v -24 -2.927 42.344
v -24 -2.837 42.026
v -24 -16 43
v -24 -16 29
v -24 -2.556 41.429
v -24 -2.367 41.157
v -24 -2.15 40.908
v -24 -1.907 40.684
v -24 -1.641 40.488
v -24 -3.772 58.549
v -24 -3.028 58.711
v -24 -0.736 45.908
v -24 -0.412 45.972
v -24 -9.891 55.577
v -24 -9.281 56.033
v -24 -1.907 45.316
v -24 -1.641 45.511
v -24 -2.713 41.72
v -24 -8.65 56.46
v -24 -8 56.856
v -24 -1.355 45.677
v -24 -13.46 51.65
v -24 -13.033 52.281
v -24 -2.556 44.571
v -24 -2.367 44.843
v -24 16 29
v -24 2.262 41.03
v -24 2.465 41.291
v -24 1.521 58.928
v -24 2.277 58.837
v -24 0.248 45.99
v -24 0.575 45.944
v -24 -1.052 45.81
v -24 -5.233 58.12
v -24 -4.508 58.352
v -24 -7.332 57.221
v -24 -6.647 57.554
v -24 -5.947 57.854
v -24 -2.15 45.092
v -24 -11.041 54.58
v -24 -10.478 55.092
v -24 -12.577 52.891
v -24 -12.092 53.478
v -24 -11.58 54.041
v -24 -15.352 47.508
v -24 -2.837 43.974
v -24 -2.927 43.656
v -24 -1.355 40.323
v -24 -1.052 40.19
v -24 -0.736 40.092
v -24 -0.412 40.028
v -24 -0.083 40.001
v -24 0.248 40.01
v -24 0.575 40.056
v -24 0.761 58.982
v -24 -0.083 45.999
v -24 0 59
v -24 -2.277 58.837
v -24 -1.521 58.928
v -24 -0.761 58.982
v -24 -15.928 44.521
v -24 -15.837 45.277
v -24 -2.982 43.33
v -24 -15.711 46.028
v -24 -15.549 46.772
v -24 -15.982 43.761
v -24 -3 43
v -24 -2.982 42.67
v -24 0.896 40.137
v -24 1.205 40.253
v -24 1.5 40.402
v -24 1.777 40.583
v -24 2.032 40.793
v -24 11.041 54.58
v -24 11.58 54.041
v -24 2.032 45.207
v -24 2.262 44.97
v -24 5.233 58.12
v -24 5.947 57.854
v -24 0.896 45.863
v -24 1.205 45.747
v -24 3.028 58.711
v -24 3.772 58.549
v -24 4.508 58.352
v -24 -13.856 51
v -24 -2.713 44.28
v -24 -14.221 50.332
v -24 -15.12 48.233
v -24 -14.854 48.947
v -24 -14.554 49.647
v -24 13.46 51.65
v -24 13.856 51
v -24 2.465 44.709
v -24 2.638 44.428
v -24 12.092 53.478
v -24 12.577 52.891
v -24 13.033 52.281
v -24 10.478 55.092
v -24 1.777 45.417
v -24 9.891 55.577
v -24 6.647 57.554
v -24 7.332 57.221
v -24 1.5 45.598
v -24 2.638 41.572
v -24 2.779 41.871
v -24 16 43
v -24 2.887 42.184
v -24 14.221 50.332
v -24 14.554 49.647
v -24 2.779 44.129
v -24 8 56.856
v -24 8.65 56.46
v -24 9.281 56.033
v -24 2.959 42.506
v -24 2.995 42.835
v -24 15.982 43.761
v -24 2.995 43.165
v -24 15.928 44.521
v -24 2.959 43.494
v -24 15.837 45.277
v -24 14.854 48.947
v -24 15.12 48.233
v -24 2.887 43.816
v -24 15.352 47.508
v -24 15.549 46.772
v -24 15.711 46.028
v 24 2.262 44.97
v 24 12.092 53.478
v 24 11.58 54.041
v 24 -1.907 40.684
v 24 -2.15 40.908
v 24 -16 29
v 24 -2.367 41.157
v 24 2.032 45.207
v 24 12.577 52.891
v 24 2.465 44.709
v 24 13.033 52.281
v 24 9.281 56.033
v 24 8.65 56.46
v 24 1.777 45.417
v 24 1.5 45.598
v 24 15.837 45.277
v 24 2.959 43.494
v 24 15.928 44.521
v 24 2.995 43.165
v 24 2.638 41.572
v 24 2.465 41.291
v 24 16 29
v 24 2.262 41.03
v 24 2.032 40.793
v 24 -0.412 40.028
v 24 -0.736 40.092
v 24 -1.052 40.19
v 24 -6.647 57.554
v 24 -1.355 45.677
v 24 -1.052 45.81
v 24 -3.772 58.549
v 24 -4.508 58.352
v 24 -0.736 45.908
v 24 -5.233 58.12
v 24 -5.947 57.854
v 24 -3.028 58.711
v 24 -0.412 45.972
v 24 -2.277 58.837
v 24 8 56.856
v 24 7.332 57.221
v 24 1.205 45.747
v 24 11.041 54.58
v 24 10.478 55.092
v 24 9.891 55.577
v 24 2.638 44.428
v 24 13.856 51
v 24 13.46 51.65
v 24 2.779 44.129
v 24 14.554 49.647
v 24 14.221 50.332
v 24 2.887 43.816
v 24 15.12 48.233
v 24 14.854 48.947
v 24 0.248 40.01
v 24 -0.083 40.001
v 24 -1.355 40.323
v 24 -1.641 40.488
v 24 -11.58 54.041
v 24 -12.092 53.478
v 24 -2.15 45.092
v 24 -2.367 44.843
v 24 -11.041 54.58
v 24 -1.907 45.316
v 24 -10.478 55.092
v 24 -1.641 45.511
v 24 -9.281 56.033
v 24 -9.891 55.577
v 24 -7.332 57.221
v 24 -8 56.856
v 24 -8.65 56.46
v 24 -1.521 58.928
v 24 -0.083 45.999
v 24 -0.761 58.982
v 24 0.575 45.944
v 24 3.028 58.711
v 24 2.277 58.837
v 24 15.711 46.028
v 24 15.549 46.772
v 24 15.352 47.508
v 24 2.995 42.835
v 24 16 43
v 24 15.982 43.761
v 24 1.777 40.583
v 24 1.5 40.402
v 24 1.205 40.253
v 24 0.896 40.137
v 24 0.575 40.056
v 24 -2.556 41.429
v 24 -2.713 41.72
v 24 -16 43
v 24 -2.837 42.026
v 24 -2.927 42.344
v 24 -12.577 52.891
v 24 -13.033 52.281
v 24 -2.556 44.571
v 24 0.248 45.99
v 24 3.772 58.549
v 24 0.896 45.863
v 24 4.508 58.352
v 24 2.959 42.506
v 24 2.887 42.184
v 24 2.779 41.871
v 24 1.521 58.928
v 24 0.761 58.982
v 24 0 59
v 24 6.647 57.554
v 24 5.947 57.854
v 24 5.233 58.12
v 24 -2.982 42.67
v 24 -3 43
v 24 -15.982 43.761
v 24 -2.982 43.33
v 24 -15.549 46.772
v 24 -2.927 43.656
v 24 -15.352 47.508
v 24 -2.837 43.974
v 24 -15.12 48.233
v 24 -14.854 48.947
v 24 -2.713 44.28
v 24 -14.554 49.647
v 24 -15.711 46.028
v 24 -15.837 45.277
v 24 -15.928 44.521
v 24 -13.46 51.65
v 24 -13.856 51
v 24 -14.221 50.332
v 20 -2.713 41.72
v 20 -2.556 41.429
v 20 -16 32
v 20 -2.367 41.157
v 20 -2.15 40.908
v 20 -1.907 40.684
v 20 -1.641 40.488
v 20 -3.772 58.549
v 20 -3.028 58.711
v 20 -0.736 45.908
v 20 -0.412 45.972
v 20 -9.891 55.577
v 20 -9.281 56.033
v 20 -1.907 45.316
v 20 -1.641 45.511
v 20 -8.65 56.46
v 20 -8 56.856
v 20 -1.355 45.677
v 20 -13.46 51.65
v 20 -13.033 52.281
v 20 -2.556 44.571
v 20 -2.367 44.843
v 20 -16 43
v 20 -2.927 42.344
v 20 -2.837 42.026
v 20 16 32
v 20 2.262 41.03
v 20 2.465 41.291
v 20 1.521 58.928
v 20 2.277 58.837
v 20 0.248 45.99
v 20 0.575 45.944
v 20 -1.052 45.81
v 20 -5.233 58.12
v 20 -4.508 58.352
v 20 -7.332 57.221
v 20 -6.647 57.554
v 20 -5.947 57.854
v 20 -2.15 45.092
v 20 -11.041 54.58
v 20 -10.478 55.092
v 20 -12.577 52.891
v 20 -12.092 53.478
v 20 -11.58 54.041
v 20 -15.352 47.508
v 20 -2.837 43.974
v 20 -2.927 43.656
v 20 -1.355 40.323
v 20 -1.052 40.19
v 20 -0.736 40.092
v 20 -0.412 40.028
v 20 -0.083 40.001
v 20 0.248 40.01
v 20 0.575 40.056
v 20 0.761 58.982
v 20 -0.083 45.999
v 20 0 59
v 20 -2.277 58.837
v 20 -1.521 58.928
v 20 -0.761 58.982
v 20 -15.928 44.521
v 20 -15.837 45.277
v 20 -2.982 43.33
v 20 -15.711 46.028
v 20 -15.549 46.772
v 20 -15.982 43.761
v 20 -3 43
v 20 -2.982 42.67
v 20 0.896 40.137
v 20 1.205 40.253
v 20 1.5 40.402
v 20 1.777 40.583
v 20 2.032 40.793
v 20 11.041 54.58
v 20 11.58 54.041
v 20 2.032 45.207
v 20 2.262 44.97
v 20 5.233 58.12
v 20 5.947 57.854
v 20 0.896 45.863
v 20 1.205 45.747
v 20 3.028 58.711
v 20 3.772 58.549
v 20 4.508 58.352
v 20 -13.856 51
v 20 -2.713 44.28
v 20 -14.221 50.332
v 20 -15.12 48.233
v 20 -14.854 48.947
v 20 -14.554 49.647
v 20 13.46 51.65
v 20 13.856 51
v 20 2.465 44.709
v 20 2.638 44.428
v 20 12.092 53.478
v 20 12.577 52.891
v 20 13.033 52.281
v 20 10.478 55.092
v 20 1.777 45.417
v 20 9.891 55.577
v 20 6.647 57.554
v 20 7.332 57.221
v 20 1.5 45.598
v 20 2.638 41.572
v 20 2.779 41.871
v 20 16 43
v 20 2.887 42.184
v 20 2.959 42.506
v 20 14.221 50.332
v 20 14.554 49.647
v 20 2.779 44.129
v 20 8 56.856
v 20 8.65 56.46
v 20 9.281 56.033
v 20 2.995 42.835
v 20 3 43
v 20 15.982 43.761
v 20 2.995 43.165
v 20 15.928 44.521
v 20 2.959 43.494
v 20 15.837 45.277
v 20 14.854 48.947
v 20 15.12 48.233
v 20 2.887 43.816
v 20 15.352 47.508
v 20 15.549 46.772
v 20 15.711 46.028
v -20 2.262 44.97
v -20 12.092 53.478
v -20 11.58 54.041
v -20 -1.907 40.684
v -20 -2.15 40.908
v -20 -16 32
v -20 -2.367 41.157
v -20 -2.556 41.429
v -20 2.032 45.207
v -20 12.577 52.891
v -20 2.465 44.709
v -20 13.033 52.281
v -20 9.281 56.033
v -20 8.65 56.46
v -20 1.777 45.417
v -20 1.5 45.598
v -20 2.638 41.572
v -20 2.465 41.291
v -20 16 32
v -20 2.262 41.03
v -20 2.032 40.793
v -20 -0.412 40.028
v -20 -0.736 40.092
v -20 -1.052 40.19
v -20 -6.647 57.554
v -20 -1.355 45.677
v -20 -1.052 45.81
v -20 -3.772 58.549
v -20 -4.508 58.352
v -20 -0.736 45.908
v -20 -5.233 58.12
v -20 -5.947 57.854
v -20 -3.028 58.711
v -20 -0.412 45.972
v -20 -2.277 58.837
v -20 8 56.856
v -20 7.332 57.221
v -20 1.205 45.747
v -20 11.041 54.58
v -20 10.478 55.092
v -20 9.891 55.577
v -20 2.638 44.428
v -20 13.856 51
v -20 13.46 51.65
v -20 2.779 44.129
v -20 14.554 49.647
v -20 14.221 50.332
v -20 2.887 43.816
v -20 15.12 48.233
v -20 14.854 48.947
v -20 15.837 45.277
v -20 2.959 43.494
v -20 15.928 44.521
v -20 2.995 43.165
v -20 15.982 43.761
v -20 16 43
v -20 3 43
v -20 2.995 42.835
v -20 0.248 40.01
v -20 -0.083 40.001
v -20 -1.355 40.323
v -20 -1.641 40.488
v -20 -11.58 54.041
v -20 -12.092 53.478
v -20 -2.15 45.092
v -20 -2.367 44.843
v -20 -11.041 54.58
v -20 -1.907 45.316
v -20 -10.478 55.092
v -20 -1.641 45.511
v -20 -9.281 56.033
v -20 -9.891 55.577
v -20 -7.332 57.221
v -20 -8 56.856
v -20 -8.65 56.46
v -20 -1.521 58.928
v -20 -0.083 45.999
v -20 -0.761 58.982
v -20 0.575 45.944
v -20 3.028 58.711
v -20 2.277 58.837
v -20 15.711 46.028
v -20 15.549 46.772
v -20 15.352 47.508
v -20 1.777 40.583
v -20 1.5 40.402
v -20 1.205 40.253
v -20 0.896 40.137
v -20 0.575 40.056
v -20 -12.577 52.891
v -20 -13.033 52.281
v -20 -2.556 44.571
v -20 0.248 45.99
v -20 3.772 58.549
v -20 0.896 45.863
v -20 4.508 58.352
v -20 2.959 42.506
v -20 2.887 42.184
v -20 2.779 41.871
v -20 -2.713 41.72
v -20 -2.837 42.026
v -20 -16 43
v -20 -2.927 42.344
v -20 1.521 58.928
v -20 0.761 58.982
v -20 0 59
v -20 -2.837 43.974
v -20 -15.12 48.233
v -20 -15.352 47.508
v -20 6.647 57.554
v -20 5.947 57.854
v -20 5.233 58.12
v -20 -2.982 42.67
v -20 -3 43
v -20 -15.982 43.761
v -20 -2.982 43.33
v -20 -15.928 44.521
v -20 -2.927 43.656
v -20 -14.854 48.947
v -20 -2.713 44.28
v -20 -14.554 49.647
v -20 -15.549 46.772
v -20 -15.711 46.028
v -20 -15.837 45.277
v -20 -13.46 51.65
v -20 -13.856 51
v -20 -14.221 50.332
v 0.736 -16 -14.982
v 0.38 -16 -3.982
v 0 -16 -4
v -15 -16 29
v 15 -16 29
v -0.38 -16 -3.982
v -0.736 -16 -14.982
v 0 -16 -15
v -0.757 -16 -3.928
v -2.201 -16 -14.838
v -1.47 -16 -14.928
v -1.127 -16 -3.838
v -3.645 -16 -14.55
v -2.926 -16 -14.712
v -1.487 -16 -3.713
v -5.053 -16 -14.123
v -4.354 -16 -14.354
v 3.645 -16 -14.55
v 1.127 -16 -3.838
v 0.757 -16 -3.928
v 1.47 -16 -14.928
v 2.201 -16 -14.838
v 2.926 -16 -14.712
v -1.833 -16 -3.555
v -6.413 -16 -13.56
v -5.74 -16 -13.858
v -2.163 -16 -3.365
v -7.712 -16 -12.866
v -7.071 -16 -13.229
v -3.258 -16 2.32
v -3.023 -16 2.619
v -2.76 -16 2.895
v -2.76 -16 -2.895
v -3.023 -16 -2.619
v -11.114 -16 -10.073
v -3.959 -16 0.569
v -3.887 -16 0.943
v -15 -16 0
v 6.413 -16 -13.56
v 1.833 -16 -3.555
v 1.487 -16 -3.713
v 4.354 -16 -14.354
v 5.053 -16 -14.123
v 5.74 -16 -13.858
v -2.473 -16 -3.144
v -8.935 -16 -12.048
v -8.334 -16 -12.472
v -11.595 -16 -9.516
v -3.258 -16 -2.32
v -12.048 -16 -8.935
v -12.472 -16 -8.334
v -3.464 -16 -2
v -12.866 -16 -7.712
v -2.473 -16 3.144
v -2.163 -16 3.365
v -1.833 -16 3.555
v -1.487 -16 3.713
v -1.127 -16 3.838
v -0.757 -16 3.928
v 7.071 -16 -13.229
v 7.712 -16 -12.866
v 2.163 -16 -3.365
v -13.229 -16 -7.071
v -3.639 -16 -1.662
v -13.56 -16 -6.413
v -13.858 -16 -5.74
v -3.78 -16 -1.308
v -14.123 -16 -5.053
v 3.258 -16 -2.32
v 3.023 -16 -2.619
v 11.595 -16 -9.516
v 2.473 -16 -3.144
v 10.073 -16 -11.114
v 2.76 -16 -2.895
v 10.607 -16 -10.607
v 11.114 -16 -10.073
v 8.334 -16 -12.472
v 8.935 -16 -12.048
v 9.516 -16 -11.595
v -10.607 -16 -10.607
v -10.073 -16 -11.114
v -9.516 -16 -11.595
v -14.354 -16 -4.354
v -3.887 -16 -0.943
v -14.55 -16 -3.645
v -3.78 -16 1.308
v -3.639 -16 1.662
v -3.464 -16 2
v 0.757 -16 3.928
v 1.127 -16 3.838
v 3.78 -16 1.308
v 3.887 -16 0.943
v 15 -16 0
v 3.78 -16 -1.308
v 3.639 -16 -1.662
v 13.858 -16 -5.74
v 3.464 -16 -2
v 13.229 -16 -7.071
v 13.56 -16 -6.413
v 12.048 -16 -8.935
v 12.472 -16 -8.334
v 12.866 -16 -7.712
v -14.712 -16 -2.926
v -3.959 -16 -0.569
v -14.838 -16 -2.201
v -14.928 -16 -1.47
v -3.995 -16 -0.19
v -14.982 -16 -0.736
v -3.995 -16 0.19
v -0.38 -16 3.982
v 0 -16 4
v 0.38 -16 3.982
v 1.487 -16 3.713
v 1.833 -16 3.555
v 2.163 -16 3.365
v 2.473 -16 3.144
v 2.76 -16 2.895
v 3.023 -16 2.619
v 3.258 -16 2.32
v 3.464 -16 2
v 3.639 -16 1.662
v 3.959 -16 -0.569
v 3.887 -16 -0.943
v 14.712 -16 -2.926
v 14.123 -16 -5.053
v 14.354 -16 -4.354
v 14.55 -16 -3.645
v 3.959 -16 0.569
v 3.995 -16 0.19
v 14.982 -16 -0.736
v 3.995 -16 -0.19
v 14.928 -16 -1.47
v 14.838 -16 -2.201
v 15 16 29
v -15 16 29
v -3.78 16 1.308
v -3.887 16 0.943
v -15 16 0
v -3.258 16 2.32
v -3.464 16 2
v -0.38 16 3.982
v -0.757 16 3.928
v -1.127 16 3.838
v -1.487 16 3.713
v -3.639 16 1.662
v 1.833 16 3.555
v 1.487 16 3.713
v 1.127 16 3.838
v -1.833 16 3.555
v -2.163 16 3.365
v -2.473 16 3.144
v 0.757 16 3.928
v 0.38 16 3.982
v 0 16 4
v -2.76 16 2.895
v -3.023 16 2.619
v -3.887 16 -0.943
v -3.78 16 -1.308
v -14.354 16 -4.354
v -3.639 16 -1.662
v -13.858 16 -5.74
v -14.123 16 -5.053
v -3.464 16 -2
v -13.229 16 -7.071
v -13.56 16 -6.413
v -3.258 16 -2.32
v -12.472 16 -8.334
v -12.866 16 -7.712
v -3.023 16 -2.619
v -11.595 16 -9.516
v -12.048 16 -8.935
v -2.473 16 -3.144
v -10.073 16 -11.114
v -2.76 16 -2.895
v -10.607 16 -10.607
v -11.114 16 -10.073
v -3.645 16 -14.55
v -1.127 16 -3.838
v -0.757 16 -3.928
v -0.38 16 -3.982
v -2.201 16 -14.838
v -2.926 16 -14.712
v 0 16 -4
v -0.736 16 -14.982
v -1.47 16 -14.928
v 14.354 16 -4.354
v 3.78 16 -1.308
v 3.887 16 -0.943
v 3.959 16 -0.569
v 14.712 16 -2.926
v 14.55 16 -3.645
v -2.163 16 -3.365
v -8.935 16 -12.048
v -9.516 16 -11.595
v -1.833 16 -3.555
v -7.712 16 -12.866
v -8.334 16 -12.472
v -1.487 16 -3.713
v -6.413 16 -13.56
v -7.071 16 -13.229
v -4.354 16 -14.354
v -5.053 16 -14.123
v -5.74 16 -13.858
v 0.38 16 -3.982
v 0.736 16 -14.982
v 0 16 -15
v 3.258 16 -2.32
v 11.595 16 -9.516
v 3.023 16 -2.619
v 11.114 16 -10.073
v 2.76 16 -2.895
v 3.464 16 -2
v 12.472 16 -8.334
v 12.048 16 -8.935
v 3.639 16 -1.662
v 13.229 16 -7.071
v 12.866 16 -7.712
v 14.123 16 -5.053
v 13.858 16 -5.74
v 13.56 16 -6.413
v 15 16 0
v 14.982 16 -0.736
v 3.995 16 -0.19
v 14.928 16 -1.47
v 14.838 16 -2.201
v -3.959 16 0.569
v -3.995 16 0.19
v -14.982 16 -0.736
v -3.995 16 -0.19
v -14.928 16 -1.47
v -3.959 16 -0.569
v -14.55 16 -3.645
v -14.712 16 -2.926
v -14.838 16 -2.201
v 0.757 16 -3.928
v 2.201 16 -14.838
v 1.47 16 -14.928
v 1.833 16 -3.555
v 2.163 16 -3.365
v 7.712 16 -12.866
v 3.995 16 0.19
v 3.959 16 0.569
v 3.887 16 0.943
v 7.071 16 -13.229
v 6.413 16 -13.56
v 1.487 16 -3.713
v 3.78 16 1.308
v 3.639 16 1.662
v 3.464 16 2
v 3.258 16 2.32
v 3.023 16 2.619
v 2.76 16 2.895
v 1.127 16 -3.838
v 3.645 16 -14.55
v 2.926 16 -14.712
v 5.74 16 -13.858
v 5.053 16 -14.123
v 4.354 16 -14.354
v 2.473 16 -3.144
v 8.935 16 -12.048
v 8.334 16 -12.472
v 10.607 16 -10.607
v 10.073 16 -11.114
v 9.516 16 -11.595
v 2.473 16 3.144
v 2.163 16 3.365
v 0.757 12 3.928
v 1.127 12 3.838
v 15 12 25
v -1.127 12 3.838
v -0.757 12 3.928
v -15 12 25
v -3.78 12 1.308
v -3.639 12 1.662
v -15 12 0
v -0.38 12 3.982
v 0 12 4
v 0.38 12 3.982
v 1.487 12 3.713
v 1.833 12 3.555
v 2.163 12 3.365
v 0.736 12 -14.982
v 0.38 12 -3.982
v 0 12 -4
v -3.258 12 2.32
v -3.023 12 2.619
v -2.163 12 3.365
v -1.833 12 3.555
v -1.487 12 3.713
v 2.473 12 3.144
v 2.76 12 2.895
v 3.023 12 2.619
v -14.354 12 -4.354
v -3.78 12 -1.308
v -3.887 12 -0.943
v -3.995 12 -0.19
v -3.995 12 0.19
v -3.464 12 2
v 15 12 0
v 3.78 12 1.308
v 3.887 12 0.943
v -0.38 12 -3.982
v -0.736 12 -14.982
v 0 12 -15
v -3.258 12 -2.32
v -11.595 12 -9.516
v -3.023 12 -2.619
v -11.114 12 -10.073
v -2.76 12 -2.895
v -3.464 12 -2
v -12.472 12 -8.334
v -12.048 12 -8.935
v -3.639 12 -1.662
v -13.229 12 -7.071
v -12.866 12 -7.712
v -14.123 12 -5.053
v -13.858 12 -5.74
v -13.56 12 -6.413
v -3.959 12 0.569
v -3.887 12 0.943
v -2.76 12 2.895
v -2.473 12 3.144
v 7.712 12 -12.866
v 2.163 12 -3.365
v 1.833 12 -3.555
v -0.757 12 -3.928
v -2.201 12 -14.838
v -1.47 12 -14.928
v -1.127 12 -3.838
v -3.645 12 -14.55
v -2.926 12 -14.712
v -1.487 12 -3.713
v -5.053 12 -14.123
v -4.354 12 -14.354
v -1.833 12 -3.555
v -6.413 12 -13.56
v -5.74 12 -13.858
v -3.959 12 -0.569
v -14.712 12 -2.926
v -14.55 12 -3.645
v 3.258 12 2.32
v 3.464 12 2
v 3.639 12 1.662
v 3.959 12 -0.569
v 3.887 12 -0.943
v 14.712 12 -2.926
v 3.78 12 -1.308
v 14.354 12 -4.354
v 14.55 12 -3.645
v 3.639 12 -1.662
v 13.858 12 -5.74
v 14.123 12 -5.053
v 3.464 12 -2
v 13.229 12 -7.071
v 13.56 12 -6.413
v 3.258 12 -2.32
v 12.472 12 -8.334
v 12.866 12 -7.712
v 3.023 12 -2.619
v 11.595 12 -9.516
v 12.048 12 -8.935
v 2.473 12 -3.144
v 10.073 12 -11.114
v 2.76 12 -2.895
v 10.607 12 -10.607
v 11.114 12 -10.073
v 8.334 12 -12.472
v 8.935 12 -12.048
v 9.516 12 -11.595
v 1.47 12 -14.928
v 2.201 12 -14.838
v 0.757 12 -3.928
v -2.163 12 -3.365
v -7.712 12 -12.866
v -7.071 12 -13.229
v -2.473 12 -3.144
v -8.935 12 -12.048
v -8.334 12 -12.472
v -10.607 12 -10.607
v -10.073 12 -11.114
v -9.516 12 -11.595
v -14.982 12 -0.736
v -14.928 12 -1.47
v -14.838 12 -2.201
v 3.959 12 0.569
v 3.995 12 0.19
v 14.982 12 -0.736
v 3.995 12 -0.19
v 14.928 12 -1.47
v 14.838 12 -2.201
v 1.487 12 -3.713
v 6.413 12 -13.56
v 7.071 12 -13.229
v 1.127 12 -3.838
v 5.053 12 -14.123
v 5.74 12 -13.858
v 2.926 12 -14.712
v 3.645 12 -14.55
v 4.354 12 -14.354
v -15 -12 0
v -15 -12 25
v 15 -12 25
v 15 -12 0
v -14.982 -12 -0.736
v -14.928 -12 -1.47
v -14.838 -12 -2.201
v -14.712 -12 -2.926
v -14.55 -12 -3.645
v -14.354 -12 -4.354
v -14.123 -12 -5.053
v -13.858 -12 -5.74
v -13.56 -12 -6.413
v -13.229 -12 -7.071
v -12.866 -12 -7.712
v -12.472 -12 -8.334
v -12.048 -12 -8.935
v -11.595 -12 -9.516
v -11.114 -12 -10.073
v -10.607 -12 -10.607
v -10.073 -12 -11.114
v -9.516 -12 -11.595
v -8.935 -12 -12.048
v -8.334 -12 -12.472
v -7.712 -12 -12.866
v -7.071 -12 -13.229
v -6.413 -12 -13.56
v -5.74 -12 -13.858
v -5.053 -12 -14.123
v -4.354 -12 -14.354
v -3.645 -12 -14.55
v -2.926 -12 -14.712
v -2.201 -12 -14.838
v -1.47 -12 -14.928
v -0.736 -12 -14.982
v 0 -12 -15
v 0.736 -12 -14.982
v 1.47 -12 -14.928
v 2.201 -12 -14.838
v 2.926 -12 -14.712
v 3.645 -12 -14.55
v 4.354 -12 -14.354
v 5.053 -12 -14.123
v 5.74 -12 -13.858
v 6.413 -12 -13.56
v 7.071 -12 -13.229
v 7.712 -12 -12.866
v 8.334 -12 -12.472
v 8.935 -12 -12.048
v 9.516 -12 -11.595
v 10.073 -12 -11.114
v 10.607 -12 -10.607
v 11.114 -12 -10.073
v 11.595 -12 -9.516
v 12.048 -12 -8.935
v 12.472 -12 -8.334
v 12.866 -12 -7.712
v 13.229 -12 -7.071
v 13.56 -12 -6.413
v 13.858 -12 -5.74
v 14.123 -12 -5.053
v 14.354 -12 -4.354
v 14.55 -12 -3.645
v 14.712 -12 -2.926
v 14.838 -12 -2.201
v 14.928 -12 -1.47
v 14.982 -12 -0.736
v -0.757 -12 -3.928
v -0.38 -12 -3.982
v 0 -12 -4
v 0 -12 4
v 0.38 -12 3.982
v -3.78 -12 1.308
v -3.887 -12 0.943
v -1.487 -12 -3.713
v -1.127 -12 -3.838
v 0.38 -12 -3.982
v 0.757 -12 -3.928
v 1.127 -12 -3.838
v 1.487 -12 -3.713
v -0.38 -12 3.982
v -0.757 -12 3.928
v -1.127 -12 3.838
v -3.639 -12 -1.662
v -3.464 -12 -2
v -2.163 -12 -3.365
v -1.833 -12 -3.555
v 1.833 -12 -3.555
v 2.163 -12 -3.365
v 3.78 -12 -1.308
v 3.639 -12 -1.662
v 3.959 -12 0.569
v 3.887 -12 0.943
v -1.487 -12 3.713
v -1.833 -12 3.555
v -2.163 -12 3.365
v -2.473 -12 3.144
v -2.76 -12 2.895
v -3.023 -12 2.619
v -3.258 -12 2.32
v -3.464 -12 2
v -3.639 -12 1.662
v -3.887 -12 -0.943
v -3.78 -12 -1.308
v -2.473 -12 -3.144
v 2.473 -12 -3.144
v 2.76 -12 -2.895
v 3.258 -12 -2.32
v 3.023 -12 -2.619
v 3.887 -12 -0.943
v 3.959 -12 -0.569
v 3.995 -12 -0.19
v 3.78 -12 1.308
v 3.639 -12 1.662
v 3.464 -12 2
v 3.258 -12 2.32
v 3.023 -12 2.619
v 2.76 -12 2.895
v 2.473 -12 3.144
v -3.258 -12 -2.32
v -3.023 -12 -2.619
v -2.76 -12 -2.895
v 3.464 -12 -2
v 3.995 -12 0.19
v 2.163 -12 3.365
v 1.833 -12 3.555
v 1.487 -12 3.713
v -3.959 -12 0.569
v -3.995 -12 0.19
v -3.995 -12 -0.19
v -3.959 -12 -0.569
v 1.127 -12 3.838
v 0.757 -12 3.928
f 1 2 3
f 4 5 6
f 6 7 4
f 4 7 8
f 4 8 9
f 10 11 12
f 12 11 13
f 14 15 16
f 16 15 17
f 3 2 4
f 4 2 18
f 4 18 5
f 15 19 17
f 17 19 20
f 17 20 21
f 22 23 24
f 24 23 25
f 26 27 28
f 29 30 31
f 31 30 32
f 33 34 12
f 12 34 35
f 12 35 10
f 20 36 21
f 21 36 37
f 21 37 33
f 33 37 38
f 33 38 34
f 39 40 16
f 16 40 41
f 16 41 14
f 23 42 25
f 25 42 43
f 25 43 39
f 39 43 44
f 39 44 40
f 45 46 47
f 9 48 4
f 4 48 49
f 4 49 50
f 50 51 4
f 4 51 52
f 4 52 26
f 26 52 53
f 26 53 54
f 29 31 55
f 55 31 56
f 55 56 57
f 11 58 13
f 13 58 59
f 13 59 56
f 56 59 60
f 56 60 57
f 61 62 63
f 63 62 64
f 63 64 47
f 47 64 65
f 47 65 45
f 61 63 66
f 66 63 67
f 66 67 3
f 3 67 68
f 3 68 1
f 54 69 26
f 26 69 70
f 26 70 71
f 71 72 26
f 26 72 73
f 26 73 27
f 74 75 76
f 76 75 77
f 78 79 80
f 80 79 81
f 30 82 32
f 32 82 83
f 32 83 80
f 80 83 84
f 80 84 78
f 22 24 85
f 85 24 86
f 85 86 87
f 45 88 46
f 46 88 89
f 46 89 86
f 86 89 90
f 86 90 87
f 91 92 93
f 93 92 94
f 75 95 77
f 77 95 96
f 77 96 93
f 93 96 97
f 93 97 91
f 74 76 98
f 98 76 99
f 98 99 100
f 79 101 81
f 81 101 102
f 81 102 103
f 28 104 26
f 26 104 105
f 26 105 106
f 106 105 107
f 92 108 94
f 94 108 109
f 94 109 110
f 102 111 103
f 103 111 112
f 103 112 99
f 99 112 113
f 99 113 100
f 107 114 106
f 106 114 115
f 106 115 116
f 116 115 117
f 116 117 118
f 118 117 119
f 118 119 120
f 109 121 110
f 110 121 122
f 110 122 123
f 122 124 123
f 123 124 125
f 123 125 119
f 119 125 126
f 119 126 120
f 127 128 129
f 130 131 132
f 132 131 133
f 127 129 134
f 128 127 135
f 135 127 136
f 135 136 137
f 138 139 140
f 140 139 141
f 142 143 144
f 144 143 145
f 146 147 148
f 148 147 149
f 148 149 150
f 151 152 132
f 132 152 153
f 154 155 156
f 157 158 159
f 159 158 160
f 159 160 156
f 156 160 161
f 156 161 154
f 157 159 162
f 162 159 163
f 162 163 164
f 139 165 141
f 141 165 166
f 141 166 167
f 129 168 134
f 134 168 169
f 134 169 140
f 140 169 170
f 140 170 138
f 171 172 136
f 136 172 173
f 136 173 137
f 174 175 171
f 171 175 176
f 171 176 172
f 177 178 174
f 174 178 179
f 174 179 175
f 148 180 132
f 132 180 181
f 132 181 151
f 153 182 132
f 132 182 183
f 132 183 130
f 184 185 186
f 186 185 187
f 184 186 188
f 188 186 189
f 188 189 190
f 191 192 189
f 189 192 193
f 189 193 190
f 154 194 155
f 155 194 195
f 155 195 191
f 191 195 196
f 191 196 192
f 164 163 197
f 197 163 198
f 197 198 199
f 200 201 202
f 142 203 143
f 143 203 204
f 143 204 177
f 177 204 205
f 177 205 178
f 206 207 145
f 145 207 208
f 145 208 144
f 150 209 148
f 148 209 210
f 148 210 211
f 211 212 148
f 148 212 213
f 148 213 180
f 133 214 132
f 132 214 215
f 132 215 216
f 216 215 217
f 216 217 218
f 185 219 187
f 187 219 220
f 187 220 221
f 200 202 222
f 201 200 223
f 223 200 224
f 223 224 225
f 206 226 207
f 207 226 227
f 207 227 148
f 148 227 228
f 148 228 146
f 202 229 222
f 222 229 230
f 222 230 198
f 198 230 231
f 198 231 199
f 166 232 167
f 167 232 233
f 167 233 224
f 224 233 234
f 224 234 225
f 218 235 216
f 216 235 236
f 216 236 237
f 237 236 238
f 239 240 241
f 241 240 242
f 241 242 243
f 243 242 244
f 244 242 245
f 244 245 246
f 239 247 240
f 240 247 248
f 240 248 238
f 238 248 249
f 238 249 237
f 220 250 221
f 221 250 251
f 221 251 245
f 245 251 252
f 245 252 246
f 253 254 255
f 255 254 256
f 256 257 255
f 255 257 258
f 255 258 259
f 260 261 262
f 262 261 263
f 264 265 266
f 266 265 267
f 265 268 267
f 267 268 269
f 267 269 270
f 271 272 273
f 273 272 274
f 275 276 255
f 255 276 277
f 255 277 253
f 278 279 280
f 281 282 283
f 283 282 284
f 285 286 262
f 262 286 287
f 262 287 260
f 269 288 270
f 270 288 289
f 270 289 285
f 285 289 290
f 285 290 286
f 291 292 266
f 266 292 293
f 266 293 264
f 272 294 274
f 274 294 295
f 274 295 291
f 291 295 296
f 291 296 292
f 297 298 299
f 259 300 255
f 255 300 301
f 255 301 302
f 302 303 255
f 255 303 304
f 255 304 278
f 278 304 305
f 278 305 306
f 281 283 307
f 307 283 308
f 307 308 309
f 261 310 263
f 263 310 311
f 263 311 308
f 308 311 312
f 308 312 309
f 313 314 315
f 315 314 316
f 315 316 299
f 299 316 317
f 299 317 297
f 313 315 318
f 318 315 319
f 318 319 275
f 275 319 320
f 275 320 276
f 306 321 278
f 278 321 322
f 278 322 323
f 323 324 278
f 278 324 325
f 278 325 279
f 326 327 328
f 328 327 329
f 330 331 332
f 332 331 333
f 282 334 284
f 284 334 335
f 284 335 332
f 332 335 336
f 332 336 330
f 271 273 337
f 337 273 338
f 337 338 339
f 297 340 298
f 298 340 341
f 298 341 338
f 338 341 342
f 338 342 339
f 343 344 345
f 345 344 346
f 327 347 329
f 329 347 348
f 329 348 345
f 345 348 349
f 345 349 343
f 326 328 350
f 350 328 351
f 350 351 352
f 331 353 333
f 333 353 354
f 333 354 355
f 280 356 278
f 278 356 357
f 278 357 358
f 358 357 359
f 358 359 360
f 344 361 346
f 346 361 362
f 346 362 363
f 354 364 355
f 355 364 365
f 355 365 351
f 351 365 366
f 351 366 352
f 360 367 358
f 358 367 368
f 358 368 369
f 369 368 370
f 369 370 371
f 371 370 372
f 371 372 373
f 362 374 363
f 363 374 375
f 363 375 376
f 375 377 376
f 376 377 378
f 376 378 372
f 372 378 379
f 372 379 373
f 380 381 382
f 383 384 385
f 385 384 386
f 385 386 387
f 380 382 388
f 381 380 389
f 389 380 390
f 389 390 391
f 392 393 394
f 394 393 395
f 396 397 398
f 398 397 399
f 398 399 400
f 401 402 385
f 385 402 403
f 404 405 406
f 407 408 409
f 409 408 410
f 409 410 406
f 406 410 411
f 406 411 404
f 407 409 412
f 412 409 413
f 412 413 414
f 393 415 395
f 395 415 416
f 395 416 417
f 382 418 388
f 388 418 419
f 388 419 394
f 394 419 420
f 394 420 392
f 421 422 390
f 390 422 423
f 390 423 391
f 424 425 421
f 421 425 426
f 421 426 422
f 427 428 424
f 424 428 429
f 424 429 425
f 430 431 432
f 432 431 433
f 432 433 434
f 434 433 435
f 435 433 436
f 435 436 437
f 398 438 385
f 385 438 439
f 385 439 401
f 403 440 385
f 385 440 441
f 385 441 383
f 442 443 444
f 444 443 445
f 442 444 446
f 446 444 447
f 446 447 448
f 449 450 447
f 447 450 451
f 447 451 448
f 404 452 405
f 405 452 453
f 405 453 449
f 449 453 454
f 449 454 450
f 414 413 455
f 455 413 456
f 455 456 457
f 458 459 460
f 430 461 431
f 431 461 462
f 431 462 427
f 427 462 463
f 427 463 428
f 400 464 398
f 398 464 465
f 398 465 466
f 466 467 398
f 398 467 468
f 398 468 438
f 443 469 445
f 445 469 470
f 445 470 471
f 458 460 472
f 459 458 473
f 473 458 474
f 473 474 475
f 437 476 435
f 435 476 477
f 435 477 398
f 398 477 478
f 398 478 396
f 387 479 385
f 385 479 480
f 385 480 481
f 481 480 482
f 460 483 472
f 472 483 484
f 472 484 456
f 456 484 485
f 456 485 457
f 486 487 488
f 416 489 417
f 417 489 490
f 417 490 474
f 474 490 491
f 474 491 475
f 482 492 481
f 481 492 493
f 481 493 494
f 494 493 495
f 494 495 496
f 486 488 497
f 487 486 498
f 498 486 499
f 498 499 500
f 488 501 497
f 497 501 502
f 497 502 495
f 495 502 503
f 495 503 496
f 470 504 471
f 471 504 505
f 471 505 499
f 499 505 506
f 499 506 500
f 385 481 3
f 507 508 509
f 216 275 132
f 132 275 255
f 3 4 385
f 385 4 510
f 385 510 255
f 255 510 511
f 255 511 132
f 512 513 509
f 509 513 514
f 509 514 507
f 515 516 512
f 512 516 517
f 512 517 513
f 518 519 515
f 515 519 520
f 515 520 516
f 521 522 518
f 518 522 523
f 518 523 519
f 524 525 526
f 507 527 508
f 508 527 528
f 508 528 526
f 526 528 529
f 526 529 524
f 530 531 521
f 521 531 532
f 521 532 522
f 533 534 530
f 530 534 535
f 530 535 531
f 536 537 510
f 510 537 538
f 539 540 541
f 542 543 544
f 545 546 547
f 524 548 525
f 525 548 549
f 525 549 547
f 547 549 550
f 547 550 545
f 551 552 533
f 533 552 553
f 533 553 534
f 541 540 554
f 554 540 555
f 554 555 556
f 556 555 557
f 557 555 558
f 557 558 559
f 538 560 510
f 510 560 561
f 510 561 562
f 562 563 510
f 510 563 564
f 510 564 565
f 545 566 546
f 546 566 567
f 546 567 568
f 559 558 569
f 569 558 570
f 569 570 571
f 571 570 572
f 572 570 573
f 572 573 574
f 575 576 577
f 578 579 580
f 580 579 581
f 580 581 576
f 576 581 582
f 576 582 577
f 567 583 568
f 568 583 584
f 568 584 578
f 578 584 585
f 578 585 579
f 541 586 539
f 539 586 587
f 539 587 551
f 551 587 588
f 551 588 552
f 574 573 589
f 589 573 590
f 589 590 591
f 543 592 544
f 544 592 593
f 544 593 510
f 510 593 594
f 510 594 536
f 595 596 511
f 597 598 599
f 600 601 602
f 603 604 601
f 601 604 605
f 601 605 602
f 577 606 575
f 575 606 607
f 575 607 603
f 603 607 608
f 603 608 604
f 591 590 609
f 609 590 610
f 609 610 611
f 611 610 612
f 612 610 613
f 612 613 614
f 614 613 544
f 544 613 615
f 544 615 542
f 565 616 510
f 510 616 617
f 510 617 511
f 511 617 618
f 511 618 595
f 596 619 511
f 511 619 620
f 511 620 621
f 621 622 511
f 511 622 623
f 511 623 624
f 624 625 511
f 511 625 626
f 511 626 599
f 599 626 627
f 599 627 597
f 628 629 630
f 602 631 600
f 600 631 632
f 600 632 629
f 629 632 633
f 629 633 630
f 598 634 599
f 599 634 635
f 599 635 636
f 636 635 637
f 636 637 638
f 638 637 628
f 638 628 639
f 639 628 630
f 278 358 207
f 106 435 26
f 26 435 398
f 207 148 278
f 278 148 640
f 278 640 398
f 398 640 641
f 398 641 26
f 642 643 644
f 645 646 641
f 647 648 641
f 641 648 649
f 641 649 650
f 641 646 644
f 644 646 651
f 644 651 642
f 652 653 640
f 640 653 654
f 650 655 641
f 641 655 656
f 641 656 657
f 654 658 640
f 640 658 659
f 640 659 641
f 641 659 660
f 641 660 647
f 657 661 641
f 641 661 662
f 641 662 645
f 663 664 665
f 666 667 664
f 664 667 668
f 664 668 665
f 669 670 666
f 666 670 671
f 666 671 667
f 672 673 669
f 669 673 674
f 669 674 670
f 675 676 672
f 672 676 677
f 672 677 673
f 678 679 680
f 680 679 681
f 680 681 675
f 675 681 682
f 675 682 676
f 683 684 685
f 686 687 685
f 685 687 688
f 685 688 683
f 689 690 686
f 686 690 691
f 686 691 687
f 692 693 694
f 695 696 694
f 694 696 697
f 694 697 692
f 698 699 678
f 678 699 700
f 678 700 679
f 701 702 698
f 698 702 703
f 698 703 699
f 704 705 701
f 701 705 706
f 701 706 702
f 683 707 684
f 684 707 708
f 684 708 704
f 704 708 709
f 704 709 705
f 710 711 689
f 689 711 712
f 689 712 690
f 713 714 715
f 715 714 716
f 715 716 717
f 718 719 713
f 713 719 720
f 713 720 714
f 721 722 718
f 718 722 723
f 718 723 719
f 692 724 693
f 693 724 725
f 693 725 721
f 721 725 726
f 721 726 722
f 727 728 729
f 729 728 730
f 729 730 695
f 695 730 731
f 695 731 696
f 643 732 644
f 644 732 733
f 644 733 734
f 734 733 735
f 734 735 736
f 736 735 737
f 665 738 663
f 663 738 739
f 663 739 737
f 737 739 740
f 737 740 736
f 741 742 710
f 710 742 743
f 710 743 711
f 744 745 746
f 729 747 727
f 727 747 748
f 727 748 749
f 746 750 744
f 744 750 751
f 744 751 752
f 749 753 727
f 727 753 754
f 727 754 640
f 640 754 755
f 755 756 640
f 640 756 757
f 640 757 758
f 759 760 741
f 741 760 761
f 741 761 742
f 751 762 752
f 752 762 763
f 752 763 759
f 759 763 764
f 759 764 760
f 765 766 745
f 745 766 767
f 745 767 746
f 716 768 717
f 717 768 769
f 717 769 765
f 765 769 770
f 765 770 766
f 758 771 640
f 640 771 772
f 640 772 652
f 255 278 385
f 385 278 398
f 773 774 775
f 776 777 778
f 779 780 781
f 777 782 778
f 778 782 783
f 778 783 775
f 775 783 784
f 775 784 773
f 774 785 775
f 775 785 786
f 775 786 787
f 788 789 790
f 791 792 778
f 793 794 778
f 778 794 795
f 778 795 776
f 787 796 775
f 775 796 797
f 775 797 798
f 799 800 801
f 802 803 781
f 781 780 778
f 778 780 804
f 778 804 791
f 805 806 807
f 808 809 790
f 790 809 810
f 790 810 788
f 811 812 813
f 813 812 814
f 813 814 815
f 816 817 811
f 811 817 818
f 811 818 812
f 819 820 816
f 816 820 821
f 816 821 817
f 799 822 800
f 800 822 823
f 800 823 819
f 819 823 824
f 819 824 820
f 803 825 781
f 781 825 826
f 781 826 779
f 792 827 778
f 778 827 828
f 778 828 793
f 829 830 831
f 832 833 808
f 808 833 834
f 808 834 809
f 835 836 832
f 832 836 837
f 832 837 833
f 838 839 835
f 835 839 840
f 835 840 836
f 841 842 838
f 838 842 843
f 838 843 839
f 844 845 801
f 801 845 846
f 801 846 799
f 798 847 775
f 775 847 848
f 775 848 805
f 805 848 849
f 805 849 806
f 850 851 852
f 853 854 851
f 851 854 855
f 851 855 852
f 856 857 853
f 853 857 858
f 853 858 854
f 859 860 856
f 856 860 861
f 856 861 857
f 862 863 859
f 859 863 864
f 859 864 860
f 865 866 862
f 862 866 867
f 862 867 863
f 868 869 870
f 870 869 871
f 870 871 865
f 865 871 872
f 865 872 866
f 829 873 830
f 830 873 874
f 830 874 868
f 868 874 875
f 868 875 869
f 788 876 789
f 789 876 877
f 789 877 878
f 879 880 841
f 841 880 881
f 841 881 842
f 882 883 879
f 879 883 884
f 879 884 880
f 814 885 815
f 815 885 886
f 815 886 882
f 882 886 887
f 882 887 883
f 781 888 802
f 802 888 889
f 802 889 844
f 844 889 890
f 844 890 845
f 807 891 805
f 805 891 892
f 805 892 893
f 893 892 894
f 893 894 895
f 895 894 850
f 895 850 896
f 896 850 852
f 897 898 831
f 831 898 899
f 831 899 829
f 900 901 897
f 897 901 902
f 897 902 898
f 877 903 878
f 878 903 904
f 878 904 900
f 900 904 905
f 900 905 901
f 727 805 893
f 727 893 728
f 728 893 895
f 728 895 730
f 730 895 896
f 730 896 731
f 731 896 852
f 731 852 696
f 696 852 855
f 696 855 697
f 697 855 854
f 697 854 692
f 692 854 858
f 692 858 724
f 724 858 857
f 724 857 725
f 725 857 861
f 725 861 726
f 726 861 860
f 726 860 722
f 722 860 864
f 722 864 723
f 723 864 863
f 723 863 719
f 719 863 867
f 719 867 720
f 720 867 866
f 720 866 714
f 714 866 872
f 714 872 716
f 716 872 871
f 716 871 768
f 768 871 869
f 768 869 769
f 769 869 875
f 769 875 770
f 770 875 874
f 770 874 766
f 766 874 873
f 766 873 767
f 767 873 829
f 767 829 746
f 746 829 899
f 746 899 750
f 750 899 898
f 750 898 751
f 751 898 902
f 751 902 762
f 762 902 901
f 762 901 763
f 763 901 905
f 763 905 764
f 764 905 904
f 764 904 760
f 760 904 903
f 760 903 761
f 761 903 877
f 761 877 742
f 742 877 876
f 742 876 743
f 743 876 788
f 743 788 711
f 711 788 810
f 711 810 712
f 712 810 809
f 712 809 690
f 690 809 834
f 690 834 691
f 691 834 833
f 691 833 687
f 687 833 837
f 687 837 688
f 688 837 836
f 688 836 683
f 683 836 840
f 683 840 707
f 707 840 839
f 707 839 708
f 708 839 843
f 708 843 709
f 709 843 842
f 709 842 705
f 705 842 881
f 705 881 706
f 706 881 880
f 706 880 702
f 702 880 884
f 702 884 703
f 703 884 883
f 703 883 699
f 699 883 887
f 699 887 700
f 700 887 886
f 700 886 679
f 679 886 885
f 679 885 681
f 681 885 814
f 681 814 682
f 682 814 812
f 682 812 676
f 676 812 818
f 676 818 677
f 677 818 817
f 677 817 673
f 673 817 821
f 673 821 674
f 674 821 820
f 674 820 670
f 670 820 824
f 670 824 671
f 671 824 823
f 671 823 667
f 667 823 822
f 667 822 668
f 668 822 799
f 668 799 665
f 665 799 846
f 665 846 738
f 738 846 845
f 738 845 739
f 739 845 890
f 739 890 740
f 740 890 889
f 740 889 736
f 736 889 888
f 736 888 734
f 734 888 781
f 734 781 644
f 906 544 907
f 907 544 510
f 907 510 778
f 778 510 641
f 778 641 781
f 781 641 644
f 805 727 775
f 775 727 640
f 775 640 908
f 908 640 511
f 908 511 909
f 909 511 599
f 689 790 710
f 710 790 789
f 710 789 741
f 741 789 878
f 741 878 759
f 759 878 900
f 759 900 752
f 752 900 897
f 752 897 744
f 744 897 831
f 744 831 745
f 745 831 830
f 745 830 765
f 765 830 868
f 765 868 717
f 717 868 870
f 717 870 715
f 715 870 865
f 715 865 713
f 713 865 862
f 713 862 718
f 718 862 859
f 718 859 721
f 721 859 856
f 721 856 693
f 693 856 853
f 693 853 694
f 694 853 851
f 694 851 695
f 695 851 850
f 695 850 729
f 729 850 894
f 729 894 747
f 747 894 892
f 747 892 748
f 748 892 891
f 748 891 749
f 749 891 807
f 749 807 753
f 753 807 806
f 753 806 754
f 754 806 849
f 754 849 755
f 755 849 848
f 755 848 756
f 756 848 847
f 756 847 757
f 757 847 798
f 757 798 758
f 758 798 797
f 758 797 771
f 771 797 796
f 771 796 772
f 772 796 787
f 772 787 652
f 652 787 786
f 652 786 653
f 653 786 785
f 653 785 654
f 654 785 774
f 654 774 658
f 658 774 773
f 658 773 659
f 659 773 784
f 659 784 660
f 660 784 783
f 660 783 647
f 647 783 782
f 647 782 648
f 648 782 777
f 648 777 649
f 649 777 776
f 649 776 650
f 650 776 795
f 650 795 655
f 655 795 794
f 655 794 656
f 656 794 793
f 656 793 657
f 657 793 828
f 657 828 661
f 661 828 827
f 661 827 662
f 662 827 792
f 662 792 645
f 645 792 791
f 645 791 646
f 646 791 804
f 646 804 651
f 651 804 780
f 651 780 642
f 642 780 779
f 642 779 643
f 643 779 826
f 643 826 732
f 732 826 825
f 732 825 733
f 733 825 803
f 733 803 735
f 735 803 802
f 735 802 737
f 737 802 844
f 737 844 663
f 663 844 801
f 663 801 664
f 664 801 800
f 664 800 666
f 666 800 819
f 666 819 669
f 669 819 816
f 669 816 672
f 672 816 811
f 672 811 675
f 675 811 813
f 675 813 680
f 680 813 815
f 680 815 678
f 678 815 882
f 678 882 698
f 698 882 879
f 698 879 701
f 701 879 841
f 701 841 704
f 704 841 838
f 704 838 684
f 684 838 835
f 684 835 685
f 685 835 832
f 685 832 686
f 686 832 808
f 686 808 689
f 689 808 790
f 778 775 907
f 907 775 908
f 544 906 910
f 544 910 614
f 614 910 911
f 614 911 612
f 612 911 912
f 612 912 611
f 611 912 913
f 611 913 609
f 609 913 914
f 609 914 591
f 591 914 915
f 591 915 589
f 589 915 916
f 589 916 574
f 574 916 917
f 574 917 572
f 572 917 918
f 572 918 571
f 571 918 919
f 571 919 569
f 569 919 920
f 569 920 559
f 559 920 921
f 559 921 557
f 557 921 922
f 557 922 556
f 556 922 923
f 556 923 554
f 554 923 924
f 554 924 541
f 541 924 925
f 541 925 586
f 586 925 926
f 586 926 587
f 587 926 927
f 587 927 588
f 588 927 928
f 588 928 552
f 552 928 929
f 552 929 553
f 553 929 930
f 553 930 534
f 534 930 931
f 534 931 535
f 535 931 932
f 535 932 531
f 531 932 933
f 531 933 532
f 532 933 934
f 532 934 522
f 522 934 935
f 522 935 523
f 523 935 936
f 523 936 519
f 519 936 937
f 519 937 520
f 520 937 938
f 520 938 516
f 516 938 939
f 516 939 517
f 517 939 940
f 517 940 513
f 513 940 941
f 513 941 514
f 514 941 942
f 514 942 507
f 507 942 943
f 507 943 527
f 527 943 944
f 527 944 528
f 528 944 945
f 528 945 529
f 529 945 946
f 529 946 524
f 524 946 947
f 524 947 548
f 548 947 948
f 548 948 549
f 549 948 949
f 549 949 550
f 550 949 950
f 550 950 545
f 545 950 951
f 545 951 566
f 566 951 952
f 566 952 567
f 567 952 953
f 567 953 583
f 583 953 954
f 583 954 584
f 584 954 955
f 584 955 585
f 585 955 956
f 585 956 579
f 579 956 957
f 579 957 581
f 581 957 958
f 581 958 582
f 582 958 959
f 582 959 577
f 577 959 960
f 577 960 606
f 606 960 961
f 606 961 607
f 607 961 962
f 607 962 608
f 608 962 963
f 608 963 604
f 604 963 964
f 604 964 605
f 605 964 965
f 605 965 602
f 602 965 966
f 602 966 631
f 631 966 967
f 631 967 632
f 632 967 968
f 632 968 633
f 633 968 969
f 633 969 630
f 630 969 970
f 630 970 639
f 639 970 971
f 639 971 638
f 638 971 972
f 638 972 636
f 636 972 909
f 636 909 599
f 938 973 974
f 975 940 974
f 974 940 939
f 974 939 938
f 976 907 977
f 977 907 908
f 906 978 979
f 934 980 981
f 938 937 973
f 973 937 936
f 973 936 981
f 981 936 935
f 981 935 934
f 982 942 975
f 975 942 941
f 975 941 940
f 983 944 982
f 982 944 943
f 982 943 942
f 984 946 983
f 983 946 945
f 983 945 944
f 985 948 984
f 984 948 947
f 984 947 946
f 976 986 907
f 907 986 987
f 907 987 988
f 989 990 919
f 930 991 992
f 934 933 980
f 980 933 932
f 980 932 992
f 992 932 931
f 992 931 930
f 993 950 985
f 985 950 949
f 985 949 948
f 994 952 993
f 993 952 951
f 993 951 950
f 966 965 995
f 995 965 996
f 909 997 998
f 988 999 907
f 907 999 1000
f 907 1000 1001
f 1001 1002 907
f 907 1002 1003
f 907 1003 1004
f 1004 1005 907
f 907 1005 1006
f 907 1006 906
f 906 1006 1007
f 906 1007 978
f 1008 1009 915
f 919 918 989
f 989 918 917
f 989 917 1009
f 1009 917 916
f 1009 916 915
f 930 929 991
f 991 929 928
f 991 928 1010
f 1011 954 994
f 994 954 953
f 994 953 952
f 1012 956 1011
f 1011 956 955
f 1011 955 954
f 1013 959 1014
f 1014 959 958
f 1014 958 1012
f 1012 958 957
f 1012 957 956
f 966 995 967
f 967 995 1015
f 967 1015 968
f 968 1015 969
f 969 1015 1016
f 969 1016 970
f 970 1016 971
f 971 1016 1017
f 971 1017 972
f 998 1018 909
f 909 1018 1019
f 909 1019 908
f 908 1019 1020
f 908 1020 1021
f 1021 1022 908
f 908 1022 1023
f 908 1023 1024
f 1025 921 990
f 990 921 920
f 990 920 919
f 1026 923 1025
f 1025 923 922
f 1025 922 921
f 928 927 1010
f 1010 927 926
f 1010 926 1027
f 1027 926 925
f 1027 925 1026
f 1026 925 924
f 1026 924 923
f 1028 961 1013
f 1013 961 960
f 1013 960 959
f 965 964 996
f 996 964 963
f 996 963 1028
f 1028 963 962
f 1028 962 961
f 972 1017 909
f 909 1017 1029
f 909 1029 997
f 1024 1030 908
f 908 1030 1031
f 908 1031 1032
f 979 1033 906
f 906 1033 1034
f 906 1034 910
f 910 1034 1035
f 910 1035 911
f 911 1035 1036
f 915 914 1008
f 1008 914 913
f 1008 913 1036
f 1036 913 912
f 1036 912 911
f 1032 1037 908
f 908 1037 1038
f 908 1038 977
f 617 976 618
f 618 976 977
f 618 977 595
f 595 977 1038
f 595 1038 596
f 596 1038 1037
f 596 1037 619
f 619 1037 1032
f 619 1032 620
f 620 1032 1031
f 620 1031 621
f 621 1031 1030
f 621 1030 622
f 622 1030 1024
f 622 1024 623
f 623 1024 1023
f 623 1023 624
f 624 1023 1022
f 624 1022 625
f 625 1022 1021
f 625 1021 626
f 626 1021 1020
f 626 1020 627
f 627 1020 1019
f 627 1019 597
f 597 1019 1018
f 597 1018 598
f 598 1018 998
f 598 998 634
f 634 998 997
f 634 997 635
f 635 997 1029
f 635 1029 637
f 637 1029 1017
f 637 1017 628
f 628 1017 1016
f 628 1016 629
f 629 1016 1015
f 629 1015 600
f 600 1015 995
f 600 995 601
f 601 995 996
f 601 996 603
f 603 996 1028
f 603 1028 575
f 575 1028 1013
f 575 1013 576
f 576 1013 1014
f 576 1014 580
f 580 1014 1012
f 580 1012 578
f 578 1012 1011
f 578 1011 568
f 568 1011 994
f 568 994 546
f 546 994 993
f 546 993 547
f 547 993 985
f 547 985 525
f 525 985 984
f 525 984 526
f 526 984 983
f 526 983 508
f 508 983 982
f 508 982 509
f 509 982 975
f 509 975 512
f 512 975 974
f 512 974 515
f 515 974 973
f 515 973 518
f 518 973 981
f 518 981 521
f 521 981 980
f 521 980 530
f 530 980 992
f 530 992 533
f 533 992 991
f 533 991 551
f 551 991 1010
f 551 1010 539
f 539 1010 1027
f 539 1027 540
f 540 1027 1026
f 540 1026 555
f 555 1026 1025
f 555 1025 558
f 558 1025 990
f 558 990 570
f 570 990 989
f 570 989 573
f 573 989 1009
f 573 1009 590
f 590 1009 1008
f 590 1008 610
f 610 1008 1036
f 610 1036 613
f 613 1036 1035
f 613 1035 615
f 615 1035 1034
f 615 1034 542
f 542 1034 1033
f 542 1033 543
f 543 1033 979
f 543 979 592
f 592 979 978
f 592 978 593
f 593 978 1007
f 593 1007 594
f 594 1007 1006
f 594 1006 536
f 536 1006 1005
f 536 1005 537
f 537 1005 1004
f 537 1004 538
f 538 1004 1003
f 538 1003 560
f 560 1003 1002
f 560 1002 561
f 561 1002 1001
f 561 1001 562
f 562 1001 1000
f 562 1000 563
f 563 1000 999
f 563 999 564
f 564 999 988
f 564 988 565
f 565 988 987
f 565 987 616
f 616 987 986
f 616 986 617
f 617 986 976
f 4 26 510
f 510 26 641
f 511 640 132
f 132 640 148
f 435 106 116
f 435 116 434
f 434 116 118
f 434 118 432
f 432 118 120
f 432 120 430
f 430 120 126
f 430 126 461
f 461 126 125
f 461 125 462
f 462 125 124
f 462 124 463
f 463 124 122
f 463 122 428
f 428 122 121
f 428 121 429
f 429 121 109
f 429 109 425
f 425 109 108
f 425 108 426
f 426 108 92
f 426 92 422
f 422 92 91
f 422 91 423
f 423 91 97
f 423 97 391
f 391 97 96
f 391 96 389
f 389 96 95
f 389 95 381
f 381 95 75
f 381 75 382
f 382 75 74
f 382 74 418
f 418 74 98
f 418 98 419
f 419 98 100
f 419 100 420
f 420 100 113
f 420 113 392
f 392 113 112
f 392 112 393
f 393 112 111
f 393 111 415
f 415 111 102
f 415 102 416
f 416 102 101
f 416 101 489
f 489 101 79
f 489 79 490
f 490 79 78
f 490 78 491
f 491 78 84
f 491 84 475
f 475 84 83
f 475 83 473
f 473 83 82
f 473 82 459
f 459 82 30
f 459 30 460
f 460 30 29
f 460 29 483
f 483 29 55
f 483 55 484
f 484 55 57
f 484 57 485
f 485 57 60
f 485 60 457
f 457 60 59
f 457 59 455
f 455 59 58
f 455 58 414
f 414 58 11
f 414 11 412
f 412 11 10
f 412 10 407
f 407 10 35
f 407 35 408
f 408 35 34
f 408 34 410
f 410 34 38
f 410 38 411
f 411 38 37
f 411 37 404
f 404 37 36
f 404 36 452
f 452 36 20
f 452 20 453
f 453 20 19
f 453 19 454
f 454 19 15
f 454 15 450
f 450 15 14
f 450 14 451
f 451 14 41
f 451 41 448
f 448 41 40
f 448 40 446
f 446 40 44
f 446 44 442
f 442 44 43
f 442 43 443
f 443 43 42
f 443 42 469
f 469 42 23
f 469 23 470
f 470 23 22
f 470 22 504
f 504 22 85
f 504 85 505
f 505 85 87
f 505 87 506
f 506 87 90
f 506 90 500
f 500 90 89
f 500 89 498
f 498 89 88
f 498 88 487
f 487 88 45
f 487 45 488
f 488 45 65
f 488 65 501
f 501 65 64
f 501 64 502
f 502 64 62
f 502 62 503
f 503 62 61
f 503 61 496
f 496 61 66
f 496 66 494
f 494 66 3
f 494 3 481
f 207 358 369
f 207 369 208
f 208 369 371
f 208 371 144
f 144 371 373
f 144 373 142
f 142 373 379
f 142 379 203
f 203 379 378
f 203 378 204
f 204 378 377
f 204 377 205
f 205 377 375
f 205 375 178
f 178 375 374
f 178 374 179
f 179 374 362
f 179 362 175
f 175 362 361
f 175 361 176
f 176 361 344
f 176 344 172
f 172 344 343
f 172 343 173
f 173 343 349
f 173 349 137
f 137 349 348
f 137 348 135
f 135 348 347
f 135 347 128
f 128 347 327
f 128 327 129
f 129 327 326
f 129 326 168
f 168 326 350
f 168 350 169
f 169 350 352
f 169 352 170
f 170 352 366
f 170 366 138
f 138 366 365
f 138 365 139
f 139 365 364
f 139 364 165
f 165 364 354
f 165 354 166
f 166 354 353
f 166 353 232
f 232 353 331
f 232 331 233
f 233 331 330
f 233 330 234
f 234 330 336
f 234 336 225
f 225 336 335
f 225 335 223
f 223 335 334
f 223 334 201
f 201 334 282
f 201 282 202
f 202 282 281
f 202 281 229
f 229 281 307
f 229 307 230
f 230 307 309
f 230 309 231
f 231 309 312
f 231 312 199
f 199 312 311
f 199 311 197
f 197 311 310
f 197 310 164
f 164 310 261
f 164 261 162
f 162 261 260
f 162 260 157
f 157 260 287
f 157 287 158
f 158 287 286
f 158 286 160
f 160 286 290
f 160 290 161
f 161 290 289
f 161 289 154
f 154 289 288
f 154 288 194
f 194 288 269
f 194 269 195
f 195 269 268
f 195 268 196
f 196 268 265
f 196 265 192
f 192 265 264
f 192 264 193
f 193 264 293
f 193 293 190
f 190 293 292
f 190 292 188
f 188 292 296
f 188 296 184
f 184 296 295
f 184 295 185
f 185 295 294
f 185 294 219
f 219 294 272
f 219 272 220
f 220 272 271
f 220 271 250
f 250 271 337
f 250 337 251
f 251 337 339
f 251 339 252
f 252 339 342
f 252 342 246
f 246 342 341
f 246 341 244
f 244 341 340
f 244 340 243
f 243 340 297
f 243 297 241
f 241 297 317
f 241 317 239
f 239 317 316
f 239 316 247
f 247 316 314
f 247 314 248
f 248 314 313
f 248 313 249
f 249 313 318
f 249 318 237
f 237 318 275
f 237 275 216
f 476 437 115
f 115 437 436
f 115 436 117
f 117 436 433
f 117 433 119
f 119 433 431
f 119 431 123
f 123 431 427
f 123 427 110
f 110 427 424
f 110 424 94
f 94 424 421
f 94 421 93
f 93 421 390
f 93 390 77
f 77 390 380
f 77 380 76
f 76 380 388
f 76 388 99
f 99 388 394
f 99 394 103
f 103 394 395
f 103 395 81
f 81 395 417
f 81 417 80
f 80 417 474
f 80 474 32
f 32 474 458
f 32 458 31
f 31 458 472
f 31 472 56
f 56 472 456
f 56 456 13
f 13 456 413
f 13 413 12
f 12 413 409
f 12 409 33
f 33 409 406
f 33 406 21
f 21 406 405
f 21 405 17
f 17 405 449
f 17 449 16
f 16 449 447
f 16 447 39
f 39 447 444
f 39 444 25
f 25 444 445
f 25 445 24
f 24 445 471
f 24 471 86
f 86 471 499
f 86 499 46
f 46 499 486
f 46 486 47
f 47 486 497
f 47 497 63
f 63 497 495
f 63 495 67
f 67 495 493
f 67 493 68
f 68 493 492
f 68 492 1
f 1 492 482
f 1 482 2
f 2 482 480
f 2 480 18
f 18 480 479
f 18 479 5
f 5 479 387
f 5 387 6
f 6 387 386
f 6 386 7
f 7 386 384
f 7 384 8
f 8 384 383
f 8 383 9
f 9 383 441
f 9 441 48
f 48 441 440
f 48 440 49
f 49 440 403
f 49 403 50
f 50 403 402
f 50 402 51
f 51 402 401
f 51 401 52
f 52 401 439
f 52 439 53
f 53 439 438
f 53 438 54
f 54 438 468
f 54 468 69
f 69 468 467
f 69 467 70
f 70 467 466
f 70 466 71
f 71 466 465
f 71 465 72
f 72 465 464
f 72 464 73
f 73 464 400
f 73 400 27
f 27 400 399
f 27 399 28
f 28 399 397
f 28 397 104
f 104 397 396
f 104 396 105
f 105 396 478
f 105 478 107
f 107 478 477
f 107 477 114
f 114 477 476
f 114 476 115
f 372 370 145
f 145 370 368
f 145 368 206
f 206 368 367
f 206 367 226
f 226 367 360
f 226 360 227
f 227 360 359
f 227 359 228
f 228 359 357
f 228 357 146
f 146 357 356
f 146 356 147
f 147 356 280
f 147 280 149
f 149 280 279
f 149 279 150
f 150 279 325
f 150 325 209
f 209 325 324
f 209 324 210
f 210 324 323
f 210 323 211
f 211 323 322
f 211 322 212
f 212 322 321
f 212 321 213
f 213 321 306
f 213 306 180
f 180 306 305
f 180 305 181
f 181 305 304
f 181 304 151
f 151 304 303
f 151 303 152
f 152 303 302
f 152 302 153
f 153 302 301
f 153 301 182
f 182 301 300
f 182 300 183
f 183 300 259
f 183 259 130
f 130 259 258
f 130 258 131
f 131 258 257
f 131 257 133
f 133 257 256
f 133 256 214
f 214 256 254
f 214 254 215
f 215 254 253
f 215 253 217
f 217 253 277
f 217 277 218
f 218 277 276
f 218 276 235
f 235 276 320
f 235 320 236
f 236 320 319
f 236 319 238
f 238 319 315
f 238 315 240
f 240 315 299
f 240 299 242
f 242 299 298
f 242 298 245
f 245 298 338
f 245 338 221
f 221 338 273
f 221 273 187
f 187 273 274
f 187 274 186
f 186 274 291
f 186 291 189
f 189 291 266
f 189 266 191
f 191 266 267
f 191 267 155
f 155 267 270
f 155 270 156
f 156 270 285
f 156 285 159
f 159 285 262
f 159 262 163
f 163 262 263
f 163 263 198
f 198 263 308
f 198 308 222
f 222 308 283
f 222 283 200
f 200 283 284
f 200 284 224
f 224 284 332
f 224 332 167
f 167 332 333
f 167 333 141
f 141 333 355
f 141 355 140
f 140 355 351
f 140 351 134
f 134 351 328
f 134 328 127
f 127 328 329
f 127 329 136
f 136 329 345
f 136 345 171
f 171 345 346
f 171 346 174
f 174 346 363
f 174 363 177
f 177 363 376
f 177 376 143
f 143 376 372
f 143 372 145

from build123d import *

# Parameters (mm, degrees)
BOSS_EXTRUDE1_START = 12
SKETCH1_R           = 4
BOSS_EXTRUDE1_DEPTH = 4
BOSS_EXTRUDE2_START = -12
SKETCH1_2_R         = 4
BOSS_EXTRUDE2_DEPTH = 4
SKETCH2_W           = 30
SKETCH2_H           = 32
BOSS_EXTRUDE3_DEPTH = 4
SKETCH3_W           = 48
SKETCH3_H           = 32
BOSS_EXTRUDE4_DEPTH = 3
SKETCH3_3_W         = 4
SKETCH3_3_H         = 32
BOSS_EXTRUDE5_DEPTH = 30
SKETCH4_R           = 3
CUT_EXTRUDE1_DEPTH  = 78.723870207


with BuildPart() as part:
    # Sketch1 → Boss-Extrude1 (new body)
    with BuildSketch(Plane(origin=(0, 0, 0), x_dir=(1, 0, 0), z_dir=(0, 1, 0)).offset(BOSS_EXTRUDE1_START)):
        with BuildLine():
            Line((-15, 0), (-15, -25))
            Line((-15, -25), (15, -25))
            Line((15, -25), (15, 0))
            ThreePointArc((15, 0), (0, 15), (-15, 0))
        make_face()
        with Locations(Location((0, 0, 0), (0, 0, 270))):
            Circle(SKETCH1_R, mode=Mode.SUBTRACT)
    extrude(amount=BOSS_EXTRUDE1_DEPTH)



with BuildPart() as body_2:
    # Sketch1<2> → Boss-Extrude2 (new body)
    with BuildSketch(Plane(origin=(0, 0, 0), x_dir=(1, 0, 0), z_dir=(0, 1, 0)).offset(BOSS_EXTRUDE2_START)):
        with BuildLine():
            Line((-15, 0), (-15, -25))
            Line((-15, -25), (15, -25))
            Line((15, -25), (15, 0))
            ThreePointArc((15, 0), (0, 15), (-15, 0))
        make_face()
        with Locations(Location((0, 0, 0), (0, 0, 270))):
            Circle(SKETCH1_2_R, mode=Mode.SUBTRACT)
    extrude(amount=-BOSS_EXTRUDE2_DEPTH)


with BuildPart() as part_1:
    add(part.part)

    add(body_2.part)  # Boss-Extrude3 merges body 2
    # Sketch2 → Boss-Extrude3 (add)
    with BuildSketch(Plane.XY.offset(25)):
        Rectangle(SKETCH2_W, SKETCH2_H)
    extrude(amount=BOSS_EXTRUDE3_DEPTH)

    # Sketch3 → Boss-Extrude4 (add)
    with BuildSketch(Plane.XY.offset(29)):
        Rectangle(SKETCH3_W, SKETCH3_H)
    extrude(amount=BOSS_EXTRUDE4_DEPTH)

    # Sketch3<3> → Boss-Extrude5 (add)
    with BuildSketch(Plane.XY.offset(29)):
        with Locations((22, 0)):
            Rectangle(SKETCH3_3_W, SKETCH3_3_H)
        with Locations((-22, 0)):
            Rectangle(SKETCH3_3_W, SKETCH3_3_H)
    extrude(amount=BOSS_EXTRUDE5_DEPTH)

    # Sketch4 → Cut-Extrude1 (cut, through all)
    with BuildSketch(Plane(origin=(-24, 0, 0), x_dir=(0, -1, 0), z_dir=(1, 0, 0))):
        with BuildLine():
            Line((16, -59), (16, -43))
            ThreePointArc((16, -43), (11.313708499, -54.313708499), (0, -59))
            Line((0, -59), (16, -59))
        make_face()
        with Locations((0, -43)):
            Circle(SKETCH4_R)
        with BuildLine():
            Line((-16, -59), (0, -59))
            ThreePointArc((0, -59), (-11.313708499, -54.313708499), (-16, -43))
            Line((-16, -43), (-16, -59))
        make_face()
    extrude(amount=CUT_EXTRUDE1_DEPTH, mode=Mode.SUBTRACT)


solid = part_1.part
